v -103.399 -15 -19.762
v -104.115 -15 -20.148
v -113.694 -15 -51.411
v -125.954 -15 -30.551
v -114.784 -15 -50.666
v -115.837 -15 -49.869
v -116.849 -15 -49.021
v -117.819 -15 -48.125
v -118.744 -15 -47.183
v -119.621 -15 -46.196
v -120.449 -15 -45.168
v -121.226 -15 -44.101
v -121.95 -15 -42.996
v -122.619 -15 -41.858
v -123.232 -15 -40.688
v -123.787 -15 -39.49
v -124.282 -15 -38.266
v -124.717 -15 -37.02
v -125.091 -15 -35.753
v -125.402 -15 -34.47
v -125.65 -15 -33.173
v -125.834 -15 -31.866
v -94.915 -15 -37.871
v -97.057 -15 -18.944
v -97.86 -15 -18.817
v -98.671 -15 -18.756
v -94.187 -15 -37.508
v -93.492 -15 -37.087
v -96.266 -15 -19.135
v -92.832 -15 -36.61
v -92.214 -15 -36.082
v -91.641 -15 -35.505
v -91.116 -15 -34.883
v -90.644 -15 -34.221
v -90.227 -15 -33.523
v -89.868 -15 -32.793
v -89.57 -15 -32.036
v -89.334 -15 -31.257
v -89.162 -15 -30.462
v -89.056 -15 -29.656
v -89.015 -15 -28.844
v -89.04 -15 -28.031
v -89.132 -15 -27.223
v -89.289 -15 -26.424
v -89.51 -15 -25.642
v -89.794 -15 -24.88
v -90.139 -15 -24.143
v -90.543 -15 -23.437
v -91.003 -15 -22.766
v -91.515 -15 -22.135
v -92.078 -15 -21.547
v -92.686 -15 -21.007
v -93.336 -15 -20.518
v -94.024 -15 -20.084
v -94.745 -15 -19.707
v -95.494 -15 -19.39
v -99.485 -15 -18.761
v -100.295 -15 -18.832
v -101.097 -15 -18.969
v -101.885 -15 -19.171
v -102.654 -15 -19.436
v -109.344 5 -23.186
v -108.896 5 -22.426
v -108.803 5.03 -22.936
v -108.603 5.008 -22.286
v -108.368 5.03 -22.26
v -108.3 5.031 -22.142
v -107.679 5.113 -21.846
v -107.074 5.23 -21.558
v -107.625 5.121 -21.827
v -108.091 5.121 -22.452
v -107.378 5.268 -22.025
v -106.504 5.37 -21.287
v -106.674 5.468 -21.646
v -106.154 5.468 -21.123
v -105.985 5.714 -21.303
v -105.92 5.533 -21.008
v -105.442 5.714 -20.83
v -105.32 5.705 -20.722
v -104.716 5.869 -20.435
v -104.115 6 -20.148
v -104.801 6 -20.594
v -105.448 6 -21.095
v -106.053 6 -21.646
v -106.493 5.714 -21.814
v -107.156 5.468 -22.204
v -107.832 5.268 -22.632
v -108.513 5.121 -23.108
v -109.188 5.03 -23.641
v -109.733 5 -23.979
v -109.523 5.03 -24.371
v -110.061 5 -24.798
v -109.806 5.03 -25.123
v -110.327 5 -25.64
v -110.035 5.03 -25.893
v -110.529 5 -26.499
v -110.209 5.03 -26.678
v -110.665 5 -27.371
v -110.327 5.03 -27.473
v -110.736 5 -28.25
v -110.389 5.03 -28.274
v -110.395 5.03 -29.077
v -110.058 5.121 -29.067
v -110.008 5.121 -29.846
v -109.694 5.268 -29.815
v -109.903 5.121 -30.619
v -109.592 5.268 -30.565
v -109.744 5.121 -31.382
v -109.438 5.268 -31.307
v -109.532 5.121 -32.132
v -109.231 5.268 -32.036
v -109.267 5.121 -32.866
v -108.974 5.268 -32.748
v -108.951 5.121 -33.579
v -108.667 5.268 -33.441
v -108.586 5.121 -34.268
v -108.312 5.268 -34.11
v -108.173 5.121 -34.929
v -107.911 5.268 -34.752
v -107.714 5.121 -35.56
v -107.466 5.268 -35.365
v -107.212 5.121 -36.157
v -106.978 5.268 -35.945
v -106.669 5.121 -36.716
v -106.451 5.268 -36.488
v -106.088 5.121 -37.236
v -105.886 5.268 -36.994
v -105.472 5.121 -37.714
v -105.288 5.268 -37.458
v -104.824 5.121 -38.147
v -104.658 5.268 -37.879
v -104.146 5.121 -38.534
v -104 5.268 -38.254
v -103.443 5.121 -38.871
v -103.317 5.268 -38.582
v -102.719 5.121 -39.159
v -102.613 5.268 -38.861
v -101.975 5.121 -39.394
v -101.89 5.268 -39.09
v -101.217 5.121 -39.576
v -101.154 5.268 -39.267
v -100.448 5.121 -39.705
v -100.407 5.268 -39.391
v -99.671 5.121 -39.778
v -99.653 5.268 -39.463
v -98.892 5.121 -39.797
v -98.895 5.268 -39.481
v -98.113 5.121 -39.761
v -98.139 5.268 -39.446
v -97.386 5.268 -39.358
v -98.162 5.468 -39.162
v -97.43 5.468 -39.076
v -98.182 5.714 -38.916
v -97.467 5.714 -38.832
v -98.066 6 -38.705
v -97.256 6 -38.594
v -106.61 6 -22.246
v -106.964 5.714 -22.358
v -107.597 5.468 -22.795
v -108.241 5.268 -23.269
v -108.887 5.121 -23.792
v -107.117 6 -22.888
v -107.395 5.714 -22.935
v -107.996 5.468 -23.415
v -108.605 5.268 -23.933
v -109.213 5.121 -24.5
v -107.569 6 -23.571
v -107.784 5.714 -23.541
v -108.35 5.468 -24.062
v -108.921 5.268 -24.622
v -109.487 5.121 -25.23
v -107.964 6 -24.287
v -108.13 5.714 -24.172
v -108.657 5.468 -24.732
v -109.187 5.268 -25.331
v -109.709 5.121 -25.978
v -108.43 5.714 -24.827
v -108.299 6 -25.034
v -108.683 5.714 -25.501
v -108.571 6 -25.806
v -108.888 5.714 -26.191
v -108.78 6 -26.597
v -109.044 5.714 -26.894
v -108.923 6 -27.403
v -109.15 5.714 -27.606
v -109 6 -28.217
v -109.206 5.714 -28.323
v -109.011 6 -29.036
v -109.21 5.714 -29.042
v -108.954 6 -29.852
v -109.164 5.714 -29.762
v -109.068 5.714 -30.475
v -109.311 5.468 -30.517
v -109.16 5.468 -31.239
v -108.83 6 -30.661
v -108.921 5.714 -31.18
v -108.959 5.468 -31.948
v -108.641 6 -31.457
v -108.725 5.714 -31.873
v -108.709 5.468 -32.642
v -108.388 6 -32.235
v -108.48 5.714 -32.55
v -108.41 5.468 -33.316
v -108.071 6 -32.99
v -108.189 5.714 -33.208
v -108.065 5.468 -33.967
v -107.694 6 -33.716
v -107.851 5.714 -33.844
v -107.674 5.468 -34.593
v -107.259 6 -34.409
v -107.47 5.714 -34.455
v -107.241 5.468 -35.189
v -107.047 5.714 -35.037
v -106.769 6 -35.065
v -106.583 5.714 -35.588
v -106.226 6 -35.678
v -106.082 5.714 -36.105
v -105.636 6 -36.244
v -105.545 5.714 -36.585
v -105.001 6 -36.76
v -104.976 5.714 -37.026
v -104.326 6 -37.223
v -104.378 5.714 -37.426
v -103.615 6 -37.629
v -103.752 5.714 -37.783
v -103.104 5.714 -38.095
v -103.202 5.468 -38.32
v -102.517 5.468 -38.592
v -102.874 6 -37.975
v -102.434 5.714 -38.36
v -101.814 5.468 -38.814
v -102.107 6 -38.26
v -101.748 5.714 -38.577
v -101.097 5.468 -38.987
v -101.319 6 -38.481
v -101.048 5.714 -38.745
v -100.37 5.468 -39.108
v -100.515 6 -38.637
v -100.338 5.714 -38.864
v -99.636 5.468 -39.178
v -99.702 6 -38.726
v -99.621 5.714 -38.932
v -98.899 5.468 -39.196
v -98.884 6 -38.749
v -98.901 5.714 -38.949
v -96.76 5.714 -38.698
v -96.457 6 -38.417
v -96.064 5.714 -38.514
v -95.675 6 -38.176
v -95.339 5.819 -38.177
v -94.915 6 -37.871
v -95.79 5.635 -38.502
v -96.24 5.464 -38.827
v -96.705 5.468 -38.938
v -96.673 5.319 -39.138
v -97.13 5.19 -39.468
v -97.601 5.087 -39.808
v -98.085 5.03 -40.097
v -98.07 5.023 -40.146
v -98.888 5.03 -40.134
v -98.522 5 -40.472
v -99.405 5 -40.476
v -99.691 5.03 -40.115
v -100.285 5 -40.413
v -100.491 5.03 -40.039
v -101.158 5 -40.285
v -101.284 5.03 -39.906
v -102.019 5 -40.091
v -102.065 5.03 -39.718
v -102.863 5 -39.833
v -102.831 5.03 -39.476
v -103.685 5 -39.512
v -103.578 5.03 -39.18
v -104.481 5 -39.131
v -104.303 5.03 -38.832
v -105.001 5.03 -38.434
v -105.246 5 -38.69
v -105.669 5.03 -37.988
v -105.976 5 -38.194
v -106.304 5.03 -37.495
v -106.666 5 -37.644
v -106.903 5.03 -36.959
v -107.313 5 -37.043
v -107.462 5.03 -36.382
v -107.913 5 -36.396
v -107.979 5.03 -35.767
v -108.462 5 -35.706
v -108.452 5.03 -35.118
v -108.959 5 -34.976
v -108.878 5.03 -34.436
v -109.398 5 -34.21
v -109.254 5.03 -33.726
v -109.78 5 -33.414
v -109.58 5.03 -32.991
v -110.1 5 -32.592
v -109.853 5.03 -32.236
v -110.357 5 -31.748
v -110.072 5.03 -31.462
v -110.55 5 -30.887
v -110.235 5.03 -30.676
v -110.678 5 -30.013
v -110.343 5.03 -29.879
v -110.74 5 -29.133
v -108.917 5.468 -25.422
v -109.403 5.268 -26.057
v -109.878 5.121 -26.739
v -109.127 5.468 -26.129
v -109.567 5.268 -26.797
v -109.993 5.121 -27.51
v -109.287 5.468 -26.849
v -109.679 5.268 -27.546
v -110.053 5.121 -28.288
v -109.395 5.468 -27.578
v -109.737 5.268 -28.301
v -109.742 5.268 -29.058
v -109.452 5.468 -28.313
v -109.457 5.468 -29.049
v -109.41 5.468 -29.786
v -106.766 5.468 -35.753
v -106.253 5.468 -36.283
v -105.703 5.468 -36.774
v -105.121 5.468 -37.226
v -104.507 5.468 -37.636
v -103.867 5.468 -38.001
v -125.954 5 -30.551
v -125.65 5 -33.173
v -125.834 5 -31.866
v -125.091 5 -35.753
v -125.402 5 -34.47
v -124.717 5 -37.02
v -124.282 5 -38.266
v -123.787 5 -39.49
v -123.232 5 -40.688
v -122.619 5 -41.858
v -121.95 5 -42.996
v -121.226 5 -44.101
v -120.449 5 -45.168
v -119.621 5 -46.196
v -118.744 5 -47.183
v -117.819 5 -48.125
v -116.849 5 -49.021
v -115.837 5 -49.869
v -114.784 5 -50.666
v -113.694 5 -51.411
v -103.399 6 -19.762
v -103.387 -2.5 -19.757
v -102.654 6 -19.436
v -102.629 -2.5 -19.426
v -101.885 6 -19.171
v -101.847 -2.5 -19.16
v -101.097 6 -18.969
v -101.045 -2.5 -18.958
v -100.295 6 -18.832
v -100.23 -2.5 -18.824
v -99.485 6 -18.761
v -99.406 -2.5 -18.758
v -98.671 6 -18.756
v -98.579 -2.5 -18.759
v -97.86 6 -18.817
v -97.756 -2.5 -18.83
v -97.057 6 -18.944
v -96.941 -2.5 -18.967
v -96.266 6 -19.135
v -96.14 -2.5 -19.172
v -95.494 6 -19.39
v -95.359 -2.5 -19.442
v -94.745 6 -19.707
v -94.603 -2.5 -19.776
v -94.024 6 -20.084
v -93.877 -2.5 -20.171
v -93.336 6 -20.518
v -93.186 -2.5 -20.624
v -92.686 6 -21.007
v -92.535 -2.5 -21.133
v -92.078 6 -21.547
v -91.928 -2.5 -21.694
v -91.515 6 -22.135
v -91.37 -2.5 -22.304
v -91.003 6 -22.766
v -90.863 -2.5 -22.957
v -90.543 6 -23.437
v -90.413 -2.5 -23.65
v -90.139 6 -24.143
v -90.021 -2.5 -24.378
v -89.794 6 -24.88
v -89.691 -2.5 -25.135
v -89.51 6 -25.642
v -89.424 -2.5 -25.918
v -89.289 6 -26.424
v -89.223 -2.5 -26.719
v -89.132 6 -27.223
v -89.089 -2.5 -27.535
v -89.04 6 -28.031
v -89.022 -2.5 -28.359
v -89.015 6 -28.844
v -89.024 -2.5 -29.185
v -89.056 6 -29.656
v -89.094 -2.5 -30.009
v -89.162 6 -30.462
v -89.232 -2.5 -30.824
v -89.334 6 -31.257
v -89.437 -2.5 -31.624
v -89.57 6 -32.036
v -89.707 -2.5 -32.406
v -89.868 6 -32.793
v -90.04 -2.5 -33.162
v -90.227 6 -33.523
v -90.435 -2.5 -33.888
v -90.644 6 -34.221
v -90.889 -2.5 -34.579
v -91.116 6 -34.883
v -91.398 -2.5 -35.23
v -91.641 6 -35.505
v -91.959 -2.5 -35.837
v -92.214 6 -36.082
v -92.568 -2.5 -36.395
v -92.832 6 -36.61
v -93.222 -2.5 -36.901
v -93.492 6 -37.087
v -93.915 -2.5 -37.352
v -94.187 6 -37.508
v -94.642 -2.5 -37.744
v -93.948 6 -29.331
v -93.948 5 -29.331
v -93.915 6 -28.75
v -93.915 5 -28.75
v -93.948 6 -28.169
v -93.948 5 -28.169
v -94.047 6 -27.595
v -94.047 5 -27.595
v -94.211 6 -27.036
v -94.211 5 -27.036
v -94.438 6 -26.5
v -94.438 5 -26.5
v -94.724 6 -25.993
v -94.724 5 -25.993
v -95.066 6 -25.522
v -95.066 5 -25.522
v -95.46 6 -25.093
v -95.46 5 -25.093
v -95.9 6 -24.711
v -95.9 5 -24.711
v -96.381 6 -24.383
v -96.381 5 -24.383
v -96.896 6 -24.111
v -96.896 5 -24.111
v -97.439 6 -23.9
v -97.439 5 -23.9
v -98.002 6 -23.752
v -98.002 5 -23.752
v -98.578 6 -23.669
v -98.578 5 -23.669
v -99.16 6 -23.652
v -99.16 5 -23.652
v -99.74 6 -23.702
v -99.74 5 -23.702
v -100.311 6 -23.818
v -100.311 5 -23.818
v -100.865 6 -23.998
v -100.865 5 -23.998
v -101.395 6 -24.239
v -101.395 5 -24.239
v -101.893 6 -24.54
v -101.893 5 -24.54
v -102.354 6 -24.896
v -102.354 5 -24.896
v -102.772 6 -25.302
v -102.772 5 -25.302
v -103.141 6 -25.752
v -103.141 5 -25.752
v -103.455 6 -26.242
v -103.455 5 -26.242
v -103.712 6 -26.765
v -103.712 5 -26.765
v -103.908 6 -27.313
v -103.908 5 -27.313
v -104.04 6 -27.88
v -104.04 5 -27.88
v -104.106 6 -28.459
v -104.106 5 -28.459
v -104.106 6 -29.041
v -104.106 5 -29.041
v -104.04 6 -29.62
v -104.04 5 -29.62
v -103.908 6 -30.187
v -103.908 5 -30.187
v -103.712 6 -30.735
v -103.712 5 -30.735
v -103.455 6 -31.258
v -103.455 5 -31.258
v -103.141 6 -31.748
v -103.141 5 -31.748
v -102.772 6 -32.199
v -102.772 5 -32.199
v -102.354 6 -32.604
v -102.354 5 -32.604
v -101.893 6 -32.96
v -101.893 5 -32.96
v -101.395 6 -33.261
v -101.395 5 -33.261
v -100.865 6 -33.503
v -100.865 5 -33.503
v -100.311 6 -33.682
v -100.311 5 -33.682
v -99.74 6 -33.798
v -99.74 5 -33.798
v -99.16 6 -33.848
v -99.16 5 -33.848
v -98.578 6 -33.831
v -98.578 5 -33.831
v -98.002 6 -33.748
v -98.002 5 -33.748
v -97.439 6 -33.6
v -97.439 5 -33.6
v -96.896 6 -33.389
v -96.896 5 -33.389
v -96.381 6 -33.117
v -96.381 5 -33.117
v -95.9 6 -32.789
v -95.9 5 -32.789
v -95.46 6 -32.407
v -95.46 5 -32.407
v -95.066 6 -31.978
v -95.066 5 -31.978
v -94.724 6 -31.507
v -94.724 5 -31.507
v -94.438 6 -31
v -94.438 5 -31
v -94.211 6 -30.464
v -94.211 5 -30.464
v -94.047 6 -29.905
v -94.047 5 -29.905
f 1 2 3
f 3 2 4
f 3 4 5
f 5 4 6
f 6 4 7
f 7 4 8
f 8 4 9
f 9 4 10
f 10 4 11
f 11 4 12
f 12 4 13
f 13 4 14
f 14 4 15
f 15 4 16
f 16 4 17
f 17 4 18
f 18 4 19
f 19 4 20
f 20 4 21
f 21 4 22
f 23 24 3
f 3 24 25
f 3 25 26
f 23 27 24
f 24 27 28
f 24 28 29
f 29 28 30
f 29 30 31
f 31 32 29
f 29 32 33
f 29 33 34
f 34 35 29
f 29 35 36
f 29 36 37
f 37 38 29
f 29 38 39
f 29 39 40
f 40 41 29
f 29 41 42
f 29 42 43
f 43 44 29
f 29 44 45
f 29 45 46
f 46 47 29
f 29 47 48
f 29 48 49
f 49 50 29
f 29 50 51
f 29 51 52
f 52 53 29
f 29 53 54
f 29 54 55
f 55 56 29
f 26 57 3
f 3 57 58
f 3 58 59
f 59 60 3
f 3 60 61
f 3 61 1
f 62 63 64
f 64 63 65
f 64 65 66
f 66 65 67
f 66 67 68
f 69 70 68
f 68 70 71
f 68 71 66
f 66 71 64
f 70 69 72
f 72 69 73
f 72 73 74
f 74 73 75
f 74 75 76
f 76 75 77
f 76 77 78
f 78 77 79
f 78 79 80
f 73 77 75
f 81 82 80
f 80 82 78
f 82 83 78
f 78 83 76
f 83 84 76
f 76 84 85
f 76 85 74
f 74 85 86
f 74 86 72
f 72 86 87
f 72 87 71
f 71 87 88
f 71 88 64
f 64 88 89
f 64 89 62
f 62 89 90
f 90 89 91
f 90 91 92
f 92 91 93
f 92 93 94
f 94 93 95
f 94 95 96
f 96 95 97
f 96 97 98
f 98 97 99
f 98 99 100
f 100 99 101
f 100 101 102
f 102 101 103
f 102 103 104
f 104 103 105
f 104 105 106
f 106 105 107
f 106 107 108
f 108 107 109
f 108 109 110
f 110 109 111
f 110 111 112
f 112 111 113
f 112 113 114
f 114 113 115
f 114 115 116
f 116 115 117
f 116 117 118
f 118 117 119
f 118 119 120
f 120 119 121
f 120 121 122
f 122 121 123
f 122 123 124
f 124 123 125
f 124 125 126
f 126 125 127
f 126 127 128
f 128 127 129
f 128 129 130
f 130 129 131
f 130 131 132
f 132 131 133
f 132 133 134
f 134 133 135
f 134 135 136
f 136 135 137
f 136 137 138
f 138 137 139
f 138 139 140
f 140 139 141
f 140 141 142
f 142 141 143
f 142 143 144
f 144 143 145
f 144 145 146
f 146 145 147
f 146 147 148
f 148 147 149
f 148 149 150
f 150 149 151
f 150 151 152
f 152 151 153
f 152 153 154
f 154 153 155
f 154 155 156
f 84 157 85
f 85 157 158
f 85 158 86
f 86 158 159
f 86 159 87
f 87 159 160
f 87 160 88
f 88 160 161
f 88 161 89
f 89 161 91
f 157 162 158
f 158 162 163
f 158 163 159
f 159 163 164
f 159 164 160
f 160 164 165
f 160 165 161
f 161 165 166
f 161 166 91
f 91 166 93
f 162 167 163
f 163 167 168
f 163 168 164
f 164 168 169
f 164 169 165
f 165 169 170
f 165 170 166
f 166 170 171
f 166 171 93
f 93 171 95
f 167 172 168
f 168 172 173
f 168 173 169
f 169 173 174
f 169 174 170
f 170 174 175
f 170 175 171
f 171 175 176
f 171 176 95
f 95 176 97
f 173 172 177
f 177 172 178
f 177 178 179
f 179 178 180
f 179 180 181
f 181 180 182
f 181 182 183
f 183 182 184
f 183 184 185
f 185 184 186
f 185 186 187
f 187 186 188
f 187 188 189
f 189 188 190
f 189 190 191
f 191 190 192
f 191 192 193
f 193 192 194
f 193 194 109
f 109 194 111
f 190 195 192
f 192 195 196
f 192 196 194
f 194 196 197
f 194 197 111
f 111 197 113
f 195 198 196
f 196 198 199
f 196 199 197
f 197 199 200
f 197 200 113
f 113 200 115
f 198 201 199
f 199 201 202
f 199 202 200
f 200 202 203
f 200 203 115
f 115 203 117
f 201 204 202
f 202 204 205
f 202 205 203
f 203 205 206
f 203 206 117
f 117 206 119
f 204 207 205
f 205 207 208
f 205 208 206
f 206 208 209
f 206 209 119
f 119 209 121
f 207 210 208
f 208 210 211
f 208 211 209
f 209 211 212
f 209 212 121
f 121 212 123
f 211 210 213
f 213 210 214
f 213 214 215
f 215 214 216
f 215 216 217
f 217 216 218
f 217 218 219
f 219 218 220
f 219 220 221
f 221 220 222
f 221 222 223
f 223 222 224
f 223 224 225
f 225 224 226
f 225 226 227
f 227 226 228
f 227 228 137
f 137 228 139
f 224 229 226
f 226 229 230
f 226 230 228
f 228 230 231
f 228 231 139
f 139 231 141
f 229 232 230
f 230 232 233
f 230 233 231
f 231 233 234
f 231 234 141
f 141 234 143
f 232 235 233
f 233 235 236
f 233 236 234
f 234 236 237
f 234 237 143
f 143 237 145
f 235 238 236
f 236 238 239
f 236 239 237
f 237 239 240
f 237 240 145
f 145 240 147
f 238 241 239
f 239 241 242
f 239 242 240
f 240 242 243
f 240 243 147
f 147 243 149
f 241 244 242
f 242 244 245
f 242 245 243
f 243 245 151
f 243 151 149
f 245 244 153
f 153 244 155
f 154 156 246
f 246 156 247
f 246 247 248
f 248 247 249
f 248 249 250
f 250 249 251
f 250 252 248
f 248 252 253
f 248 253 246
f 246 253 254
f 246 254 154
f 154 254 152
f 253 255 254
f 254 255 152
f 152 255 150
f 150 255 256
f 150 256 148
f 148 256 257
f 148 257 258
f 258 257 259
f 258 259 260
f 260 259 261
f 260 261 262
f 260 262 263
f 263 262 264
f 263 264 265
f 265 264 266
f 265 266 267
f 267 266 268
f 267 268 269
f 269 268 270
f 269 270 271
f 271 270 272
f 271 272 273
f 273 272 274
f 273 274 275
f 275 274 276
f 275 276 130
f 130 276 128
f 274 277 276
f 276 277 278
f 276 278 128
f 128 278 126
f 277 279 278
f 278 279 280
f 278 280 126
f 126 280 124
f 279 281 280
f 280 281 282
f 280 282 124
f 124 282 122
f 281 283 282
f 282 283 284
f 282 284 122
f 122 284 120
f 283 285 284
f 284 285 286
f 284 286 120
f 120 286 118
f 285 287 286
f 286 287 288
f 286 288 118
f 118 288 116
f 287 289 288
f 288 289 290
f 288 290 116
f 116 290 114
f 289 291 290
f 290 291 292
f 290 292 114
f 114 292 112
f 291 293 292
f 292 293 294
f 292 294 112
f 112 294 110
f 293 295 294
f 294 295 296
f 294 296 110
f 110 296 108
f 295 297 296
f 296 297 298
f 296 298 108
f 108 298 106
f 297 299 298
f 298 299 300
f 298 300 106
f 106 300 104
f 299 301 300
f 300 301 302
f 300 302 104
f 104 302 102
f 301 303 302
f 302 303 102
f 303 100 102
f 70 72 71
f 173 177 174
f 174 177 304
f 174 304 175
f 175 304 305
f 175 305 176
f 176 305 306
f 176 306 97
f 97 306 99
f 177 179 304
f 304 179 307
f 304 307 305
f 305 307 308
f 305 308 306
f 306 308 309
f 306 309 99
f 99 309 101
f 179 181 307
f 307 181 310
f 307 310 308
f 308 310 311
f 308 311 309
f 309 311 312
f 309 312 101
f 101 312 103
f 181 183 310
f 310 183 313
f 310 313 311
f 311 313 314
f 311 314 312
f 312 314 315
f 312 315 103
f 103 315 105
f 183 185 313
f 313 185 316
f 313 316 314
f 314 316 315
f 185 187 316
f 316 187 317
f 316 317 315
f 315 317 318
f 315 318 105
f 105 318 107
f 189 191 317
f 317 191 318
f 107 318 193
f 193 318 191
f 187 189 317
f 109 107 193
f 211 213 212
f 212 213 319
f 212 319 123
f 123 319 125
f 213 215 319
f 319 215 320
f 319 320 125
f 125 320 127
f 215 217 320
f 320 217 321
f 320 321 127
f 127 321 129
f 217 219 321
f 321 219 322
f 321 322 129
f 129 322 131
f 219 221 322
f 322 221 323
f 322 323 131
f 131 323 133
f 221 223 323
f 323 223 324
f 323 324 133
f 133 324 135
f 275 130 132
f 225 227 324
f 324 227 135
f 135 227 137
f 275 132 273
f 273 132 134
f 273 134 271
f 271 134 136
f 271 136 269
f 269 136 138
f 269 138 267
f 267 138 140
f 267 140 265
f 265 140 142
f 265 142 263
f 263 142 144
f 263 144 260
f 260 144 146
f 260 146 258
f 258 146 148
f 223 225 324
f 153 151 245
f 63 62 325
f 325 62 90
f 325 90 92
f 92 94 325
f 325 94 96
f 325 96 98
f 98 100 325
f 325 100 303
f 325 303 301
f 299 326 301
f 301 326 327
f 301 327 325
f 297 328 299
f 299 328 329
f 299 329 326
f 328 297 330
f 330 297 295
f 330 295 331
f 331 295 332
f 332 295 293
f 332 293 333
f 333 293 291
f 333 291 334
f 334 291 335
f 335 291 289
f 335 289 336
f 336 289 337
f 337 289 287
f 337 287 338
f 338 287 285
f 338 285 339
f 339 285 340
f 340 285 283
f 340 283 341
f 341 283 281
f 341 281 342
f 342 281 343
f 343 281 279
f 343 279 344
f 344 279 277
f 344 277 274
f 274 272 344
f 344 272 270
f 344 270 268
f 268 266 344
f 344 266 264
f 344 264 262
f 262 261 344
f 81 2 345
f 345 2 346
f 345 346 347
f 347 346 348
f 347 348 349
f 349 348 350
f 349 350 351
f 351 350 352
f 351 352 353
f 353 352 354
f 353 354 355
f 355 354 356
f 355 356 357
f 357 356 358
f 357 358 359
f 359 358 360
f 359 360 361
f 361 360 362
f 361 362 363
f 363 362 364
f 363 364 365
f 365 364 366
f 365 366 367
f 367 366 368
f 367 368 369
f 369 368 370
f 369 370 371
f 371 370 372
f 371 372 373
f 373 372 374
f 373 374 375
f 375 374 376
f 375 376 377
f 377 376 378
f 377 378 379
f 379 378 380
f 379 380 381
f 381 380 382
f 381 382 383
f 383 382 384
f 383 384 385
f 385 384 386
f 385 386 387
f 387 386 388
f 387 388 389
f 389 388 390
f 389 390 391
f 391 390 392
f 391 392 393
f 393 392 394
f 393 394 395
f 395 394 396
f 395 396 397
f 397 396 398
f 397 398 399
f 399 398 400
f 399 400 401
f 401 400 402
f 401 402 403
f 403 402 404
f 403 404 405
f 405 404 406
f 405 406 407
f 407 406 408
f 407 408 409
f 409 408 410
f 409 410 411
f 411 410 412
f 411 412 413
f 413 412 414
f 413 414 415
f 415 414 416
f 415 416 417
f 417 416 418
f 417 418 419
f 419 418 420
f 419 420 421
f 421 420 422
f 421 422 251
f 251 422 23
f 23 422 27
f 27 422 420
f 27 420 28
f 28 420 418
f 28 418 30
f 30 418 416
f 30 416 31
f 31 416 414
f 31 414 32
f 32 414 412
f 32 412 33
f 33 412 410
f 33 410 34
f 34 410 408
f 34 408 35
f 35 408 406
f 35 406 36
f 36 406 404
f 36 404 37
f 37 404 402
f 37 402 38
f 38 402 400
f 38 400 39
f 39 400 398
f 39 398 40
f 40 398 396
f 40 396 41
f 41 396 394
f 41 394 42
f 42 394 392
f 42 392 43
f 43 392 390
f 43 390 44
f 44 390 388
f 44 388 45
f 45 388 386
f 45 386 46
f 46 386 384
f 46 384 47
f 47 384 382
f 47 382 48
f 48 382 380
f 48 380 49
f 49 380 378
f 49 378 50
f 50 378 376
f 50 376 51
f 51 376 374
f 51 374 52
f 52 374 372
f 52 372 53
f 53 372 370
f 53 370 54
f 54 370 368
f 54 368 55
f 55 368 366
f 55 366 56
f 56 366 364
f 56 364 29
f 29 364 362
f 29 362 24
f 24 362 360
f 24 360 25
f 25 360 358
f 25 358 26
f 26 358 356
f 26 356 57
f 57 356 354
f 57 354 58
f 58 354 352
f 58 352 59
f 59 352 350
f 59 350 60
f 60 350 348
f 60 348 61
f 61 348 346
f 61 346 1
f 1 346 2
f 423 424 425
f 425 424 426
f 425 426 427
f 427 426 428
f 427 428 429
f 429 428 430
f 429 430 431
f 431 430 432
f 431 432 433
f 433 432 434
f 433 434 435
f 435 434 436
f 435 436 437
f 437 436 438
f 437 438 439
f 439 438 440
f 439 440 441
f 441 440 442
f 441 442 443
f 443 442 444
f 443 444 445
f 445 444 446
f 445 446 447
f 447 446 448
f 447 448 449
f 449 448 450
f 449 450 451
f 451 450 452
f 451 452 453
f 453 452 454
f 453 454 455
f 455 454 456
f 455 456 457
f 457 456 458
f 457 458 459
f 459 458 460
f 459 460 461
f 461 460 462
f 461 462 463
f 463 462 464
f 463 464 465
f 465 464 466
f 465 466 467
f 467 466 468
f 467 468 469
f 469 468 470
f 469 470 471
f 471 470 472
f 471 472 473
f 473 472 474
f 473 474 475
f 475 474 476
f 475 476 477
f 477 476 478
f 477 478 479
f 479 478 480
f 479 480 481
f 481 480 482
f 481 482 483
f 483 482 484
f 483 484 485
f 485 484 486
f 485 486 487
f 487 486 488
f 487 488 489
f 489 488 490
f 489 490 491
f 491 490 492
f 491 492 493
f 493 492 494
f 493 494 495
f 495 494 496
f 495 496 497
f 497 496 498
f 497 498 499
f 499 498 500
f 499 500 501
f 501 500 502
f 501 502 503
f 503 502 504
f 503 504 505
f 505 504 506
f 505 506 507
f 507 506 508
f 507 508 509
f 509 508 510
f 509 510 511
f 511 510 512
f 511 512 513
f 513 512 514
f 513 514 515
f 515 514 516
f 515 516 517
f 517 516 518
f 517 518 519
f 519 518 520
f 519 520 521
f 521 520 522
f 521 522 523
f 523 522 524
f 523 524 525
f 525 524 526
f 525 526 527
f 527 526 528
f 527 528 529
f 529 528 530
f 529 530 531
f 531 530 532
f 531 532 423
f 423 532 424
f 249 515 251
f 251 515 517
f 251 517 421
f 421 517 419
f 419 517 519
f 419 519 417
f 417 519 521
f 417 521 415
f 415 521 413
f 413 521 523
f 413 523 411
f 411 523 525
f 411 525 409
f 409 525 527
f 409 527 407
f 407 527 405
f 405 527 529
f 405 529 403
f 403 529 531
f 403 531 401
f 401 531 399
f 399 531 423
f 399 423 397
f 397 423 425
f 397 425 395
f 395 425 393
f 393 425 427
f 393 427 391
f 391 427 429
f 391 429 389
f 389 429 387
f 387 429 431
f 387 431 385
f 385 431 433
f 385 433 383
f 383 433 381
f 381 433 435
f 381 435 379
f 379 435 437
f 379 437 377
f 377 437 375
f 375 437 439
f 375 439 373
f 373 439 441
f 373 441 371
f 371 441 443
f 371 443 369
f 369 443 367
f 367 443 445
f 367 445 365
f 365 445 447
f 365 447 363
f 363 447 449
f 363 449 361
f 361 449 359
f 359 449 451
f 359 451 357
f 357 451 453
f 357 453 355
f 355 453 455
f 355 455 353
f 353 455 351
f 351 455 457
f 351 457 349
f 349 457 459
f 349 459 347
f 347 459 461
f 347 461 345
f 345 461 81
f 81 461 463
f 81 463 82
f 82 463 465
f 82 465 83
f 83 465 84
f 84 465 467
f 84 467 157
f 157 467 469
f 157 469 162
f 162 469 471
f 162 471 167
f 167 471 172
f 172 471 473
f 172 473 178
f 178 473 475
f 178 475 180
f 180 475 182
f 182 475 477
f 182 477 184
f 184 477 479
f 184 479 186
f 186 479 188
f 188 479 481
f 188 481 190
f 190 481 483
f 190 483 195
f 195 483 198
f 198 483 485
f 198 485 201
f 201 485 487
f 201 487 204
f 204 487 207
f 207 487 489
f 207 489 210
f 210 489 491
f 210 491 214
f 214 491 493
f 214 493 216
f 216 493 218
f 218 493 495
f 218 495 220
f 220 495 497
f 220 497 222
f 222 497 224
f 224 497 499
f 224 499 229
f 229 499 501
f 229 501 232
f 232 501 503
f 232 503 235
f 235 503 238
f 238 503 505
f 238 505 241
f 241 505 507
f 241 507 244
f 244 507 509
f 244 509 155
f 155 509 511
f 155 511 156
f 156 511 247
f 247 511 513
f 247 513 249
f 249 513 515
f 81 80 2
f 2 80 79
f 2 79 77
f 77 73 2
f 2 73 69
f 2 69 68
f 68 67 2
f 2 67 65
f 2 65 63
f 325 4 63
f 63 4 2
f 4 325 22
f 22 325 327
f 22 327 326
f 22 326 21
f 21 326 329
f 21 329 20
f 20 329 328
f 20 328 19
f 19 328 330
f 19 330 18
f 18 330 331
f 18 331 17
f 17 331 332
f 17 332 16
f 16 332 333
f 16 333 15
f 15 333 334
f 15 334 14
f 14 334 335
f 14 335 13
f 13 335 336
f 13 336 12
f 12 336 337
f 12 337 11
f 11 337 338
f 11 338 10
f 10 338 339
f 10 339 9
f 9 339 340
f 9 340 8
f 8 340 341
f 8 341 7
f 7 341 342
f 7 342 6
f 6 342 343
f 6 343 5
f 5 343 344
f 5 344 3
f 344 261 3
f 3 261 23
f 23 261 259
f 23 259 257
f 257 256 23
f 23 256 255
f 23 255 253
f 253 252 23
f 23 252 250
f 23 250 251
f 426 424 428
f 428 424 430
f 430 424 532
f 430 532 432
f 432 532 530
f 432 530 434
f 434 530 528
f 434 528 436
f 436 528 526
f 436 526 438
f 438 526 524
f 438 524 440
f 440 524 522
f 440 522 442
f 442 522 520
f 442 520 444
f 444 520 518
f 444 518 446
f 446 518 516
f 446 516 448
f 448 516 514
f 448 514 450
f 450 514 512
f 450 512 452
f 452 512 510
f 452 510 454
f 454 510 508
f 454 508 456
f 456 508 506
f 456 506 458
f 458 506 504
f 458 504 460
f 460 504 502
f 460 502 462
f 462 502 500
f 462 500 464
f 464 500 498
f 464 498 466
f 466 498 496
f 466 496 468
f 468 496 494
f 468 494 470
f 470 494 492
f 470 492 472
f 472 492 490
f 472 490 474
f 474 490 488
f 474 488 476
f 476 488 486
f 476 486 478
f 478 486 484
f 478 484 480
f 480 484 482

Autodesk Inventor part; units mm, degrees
ref_plane "YZ Plane" through (0, 0, 0) normal (1, 0, 0) x (0, 1, 0)
ref_plane "XZ Plane" through (0, 0, 0) normal (0, 1, 0) x (-1, 0, 0)
ref_plane "XY Plane" through (0, 0, 0) normal (0, 0, 1) x (1, 0, 0)
sketch "Szkic1" plane through (0, 0, 0) normal (0, 1, 0) x (-1, 0, 0)
  line L0 (-125.2393, -14.1807) -> (-26.2247, 164.0455)
  arc A0 (-125.2393, -14.1807) -> (-99.0146, -58.75) centre (-99.0146, -28.75) ccw
  line L1 (99.0146, -58.75) -> (-99.0146, -58.75)
  line L2 (26.2247, 164.0455) -> (125.2393, -14.1807)
  arc A1 (26.2247, 164.0455) -> (-26.2247, 164.0455) centre (0, 149.4762) ccw
  line L3 (-23.6022, 162.5886) -> (-122.6168, -15.6376)
  arc A2 (-122.6168, -15.6376) -> (-99.0146, -55.75) centre (-99.0146, -28.75) ccw
  line L4 (-99.0146, -55.75) -> (99.0146, -55.75)
  arc A3 (113.6938, -51.4109) -> (125.9544, -30.5508) centre (99.0146, -28.75) ccw
  line L5 (122.6168, -15.6376) -> (23.6022, 162.5886)
  arc A4 (23.6022, 162.5886) -> (-23.6022, 162.5886) centre (0, 149.4762) ccw
  circle A5 centre (99.0146, -28.75) radius 5.1
  arc A6 (104.1146, -20.1483) -> (94.9151, -37.8711) centre (99.0146, -28.75) ccw
  line L6 (104.1146, -20.1483) -> (125.9544, -30.5508)
  line L7 (94.9151, -37.8711) -> (113.6938, -51.4109)
  arc A7 (99.0146, -58.75) -> (116.2857, -53.2797) centre (99.0146, -28.75) ccw
  arc A8 (128.8458, -31.9279) -> (125.2393, -14.1807) centre (99.0146, -28.75) ccw
  point P0 (0, 0)
  point P1 (0, 0)
  dimension "d0" = 3
  dimension "d1" = 10.2
  dimension "d2" = 20
extrude "Wyciągnięcie proste1" add sketch "Szkic1" along normal blind 5
sketch "Szkic2" plane through (0, 5, 0) normal (0, 1, 0) x (1, 0, 0)
  circle A0 centre (-99.0146, 28.75) radius 5.1 projected
  circle A1 centre (-99.0146, 28.75) radius 5.1
  point P0 (0, 0)
extrude "Wyciągnięcie proste2" add sketch "Szkic2" against normal blind 5
sketch "Szkic3" plane through (0, 5, 0) normal (0, 1, 0) x (1, 0, 0)
  arc A0 (-104.1146, 20.1483) -> (-94.9151, 37.8711) centre (-99.0146, 28.75) ccw projected
  circle A1 centre (-99.0146, 28.75) radius 5.1
  circle A2 centre (-99.0146, 28.75) radius 10
  point P0 (0, 0)
  point P1 (-94.9151, 37.8711)
  dimension "d7" = 10.2
extrude "Wyciągnięcie proste3" add sketch "Szkic3" along normal blind 1
fillet "Zaokrąglenie1" radius 2 1 edges at (-107.8901, 5, -33.357)
sketch "Szkic4" plane through (0, 0, 0) normal (0, -1, 0) x (1, 0, 0)
  line L0 (-94.9151, -37.8711) -> (-113.6938, -51.4109) projected
  arc A0 (-94.9151, -37.8711) -> (-104.1146, -20.1483) centre (-99.0146, -28.75) ccw projected
  line L1 (-125.9544, -30.5508) -> (-104.1146, -20.1483) projected
  arc A1 (-125.9544, -30.5508) -> (-113.6938, -51.4109) centre (-99.0146, -28.75) ccw projected
  point P0 (0, 0)
extrude "Wyciągnięcie proste4" add sketch "Szkic4" along normal blind 15
properties part number "_Drukowanie 3D"
